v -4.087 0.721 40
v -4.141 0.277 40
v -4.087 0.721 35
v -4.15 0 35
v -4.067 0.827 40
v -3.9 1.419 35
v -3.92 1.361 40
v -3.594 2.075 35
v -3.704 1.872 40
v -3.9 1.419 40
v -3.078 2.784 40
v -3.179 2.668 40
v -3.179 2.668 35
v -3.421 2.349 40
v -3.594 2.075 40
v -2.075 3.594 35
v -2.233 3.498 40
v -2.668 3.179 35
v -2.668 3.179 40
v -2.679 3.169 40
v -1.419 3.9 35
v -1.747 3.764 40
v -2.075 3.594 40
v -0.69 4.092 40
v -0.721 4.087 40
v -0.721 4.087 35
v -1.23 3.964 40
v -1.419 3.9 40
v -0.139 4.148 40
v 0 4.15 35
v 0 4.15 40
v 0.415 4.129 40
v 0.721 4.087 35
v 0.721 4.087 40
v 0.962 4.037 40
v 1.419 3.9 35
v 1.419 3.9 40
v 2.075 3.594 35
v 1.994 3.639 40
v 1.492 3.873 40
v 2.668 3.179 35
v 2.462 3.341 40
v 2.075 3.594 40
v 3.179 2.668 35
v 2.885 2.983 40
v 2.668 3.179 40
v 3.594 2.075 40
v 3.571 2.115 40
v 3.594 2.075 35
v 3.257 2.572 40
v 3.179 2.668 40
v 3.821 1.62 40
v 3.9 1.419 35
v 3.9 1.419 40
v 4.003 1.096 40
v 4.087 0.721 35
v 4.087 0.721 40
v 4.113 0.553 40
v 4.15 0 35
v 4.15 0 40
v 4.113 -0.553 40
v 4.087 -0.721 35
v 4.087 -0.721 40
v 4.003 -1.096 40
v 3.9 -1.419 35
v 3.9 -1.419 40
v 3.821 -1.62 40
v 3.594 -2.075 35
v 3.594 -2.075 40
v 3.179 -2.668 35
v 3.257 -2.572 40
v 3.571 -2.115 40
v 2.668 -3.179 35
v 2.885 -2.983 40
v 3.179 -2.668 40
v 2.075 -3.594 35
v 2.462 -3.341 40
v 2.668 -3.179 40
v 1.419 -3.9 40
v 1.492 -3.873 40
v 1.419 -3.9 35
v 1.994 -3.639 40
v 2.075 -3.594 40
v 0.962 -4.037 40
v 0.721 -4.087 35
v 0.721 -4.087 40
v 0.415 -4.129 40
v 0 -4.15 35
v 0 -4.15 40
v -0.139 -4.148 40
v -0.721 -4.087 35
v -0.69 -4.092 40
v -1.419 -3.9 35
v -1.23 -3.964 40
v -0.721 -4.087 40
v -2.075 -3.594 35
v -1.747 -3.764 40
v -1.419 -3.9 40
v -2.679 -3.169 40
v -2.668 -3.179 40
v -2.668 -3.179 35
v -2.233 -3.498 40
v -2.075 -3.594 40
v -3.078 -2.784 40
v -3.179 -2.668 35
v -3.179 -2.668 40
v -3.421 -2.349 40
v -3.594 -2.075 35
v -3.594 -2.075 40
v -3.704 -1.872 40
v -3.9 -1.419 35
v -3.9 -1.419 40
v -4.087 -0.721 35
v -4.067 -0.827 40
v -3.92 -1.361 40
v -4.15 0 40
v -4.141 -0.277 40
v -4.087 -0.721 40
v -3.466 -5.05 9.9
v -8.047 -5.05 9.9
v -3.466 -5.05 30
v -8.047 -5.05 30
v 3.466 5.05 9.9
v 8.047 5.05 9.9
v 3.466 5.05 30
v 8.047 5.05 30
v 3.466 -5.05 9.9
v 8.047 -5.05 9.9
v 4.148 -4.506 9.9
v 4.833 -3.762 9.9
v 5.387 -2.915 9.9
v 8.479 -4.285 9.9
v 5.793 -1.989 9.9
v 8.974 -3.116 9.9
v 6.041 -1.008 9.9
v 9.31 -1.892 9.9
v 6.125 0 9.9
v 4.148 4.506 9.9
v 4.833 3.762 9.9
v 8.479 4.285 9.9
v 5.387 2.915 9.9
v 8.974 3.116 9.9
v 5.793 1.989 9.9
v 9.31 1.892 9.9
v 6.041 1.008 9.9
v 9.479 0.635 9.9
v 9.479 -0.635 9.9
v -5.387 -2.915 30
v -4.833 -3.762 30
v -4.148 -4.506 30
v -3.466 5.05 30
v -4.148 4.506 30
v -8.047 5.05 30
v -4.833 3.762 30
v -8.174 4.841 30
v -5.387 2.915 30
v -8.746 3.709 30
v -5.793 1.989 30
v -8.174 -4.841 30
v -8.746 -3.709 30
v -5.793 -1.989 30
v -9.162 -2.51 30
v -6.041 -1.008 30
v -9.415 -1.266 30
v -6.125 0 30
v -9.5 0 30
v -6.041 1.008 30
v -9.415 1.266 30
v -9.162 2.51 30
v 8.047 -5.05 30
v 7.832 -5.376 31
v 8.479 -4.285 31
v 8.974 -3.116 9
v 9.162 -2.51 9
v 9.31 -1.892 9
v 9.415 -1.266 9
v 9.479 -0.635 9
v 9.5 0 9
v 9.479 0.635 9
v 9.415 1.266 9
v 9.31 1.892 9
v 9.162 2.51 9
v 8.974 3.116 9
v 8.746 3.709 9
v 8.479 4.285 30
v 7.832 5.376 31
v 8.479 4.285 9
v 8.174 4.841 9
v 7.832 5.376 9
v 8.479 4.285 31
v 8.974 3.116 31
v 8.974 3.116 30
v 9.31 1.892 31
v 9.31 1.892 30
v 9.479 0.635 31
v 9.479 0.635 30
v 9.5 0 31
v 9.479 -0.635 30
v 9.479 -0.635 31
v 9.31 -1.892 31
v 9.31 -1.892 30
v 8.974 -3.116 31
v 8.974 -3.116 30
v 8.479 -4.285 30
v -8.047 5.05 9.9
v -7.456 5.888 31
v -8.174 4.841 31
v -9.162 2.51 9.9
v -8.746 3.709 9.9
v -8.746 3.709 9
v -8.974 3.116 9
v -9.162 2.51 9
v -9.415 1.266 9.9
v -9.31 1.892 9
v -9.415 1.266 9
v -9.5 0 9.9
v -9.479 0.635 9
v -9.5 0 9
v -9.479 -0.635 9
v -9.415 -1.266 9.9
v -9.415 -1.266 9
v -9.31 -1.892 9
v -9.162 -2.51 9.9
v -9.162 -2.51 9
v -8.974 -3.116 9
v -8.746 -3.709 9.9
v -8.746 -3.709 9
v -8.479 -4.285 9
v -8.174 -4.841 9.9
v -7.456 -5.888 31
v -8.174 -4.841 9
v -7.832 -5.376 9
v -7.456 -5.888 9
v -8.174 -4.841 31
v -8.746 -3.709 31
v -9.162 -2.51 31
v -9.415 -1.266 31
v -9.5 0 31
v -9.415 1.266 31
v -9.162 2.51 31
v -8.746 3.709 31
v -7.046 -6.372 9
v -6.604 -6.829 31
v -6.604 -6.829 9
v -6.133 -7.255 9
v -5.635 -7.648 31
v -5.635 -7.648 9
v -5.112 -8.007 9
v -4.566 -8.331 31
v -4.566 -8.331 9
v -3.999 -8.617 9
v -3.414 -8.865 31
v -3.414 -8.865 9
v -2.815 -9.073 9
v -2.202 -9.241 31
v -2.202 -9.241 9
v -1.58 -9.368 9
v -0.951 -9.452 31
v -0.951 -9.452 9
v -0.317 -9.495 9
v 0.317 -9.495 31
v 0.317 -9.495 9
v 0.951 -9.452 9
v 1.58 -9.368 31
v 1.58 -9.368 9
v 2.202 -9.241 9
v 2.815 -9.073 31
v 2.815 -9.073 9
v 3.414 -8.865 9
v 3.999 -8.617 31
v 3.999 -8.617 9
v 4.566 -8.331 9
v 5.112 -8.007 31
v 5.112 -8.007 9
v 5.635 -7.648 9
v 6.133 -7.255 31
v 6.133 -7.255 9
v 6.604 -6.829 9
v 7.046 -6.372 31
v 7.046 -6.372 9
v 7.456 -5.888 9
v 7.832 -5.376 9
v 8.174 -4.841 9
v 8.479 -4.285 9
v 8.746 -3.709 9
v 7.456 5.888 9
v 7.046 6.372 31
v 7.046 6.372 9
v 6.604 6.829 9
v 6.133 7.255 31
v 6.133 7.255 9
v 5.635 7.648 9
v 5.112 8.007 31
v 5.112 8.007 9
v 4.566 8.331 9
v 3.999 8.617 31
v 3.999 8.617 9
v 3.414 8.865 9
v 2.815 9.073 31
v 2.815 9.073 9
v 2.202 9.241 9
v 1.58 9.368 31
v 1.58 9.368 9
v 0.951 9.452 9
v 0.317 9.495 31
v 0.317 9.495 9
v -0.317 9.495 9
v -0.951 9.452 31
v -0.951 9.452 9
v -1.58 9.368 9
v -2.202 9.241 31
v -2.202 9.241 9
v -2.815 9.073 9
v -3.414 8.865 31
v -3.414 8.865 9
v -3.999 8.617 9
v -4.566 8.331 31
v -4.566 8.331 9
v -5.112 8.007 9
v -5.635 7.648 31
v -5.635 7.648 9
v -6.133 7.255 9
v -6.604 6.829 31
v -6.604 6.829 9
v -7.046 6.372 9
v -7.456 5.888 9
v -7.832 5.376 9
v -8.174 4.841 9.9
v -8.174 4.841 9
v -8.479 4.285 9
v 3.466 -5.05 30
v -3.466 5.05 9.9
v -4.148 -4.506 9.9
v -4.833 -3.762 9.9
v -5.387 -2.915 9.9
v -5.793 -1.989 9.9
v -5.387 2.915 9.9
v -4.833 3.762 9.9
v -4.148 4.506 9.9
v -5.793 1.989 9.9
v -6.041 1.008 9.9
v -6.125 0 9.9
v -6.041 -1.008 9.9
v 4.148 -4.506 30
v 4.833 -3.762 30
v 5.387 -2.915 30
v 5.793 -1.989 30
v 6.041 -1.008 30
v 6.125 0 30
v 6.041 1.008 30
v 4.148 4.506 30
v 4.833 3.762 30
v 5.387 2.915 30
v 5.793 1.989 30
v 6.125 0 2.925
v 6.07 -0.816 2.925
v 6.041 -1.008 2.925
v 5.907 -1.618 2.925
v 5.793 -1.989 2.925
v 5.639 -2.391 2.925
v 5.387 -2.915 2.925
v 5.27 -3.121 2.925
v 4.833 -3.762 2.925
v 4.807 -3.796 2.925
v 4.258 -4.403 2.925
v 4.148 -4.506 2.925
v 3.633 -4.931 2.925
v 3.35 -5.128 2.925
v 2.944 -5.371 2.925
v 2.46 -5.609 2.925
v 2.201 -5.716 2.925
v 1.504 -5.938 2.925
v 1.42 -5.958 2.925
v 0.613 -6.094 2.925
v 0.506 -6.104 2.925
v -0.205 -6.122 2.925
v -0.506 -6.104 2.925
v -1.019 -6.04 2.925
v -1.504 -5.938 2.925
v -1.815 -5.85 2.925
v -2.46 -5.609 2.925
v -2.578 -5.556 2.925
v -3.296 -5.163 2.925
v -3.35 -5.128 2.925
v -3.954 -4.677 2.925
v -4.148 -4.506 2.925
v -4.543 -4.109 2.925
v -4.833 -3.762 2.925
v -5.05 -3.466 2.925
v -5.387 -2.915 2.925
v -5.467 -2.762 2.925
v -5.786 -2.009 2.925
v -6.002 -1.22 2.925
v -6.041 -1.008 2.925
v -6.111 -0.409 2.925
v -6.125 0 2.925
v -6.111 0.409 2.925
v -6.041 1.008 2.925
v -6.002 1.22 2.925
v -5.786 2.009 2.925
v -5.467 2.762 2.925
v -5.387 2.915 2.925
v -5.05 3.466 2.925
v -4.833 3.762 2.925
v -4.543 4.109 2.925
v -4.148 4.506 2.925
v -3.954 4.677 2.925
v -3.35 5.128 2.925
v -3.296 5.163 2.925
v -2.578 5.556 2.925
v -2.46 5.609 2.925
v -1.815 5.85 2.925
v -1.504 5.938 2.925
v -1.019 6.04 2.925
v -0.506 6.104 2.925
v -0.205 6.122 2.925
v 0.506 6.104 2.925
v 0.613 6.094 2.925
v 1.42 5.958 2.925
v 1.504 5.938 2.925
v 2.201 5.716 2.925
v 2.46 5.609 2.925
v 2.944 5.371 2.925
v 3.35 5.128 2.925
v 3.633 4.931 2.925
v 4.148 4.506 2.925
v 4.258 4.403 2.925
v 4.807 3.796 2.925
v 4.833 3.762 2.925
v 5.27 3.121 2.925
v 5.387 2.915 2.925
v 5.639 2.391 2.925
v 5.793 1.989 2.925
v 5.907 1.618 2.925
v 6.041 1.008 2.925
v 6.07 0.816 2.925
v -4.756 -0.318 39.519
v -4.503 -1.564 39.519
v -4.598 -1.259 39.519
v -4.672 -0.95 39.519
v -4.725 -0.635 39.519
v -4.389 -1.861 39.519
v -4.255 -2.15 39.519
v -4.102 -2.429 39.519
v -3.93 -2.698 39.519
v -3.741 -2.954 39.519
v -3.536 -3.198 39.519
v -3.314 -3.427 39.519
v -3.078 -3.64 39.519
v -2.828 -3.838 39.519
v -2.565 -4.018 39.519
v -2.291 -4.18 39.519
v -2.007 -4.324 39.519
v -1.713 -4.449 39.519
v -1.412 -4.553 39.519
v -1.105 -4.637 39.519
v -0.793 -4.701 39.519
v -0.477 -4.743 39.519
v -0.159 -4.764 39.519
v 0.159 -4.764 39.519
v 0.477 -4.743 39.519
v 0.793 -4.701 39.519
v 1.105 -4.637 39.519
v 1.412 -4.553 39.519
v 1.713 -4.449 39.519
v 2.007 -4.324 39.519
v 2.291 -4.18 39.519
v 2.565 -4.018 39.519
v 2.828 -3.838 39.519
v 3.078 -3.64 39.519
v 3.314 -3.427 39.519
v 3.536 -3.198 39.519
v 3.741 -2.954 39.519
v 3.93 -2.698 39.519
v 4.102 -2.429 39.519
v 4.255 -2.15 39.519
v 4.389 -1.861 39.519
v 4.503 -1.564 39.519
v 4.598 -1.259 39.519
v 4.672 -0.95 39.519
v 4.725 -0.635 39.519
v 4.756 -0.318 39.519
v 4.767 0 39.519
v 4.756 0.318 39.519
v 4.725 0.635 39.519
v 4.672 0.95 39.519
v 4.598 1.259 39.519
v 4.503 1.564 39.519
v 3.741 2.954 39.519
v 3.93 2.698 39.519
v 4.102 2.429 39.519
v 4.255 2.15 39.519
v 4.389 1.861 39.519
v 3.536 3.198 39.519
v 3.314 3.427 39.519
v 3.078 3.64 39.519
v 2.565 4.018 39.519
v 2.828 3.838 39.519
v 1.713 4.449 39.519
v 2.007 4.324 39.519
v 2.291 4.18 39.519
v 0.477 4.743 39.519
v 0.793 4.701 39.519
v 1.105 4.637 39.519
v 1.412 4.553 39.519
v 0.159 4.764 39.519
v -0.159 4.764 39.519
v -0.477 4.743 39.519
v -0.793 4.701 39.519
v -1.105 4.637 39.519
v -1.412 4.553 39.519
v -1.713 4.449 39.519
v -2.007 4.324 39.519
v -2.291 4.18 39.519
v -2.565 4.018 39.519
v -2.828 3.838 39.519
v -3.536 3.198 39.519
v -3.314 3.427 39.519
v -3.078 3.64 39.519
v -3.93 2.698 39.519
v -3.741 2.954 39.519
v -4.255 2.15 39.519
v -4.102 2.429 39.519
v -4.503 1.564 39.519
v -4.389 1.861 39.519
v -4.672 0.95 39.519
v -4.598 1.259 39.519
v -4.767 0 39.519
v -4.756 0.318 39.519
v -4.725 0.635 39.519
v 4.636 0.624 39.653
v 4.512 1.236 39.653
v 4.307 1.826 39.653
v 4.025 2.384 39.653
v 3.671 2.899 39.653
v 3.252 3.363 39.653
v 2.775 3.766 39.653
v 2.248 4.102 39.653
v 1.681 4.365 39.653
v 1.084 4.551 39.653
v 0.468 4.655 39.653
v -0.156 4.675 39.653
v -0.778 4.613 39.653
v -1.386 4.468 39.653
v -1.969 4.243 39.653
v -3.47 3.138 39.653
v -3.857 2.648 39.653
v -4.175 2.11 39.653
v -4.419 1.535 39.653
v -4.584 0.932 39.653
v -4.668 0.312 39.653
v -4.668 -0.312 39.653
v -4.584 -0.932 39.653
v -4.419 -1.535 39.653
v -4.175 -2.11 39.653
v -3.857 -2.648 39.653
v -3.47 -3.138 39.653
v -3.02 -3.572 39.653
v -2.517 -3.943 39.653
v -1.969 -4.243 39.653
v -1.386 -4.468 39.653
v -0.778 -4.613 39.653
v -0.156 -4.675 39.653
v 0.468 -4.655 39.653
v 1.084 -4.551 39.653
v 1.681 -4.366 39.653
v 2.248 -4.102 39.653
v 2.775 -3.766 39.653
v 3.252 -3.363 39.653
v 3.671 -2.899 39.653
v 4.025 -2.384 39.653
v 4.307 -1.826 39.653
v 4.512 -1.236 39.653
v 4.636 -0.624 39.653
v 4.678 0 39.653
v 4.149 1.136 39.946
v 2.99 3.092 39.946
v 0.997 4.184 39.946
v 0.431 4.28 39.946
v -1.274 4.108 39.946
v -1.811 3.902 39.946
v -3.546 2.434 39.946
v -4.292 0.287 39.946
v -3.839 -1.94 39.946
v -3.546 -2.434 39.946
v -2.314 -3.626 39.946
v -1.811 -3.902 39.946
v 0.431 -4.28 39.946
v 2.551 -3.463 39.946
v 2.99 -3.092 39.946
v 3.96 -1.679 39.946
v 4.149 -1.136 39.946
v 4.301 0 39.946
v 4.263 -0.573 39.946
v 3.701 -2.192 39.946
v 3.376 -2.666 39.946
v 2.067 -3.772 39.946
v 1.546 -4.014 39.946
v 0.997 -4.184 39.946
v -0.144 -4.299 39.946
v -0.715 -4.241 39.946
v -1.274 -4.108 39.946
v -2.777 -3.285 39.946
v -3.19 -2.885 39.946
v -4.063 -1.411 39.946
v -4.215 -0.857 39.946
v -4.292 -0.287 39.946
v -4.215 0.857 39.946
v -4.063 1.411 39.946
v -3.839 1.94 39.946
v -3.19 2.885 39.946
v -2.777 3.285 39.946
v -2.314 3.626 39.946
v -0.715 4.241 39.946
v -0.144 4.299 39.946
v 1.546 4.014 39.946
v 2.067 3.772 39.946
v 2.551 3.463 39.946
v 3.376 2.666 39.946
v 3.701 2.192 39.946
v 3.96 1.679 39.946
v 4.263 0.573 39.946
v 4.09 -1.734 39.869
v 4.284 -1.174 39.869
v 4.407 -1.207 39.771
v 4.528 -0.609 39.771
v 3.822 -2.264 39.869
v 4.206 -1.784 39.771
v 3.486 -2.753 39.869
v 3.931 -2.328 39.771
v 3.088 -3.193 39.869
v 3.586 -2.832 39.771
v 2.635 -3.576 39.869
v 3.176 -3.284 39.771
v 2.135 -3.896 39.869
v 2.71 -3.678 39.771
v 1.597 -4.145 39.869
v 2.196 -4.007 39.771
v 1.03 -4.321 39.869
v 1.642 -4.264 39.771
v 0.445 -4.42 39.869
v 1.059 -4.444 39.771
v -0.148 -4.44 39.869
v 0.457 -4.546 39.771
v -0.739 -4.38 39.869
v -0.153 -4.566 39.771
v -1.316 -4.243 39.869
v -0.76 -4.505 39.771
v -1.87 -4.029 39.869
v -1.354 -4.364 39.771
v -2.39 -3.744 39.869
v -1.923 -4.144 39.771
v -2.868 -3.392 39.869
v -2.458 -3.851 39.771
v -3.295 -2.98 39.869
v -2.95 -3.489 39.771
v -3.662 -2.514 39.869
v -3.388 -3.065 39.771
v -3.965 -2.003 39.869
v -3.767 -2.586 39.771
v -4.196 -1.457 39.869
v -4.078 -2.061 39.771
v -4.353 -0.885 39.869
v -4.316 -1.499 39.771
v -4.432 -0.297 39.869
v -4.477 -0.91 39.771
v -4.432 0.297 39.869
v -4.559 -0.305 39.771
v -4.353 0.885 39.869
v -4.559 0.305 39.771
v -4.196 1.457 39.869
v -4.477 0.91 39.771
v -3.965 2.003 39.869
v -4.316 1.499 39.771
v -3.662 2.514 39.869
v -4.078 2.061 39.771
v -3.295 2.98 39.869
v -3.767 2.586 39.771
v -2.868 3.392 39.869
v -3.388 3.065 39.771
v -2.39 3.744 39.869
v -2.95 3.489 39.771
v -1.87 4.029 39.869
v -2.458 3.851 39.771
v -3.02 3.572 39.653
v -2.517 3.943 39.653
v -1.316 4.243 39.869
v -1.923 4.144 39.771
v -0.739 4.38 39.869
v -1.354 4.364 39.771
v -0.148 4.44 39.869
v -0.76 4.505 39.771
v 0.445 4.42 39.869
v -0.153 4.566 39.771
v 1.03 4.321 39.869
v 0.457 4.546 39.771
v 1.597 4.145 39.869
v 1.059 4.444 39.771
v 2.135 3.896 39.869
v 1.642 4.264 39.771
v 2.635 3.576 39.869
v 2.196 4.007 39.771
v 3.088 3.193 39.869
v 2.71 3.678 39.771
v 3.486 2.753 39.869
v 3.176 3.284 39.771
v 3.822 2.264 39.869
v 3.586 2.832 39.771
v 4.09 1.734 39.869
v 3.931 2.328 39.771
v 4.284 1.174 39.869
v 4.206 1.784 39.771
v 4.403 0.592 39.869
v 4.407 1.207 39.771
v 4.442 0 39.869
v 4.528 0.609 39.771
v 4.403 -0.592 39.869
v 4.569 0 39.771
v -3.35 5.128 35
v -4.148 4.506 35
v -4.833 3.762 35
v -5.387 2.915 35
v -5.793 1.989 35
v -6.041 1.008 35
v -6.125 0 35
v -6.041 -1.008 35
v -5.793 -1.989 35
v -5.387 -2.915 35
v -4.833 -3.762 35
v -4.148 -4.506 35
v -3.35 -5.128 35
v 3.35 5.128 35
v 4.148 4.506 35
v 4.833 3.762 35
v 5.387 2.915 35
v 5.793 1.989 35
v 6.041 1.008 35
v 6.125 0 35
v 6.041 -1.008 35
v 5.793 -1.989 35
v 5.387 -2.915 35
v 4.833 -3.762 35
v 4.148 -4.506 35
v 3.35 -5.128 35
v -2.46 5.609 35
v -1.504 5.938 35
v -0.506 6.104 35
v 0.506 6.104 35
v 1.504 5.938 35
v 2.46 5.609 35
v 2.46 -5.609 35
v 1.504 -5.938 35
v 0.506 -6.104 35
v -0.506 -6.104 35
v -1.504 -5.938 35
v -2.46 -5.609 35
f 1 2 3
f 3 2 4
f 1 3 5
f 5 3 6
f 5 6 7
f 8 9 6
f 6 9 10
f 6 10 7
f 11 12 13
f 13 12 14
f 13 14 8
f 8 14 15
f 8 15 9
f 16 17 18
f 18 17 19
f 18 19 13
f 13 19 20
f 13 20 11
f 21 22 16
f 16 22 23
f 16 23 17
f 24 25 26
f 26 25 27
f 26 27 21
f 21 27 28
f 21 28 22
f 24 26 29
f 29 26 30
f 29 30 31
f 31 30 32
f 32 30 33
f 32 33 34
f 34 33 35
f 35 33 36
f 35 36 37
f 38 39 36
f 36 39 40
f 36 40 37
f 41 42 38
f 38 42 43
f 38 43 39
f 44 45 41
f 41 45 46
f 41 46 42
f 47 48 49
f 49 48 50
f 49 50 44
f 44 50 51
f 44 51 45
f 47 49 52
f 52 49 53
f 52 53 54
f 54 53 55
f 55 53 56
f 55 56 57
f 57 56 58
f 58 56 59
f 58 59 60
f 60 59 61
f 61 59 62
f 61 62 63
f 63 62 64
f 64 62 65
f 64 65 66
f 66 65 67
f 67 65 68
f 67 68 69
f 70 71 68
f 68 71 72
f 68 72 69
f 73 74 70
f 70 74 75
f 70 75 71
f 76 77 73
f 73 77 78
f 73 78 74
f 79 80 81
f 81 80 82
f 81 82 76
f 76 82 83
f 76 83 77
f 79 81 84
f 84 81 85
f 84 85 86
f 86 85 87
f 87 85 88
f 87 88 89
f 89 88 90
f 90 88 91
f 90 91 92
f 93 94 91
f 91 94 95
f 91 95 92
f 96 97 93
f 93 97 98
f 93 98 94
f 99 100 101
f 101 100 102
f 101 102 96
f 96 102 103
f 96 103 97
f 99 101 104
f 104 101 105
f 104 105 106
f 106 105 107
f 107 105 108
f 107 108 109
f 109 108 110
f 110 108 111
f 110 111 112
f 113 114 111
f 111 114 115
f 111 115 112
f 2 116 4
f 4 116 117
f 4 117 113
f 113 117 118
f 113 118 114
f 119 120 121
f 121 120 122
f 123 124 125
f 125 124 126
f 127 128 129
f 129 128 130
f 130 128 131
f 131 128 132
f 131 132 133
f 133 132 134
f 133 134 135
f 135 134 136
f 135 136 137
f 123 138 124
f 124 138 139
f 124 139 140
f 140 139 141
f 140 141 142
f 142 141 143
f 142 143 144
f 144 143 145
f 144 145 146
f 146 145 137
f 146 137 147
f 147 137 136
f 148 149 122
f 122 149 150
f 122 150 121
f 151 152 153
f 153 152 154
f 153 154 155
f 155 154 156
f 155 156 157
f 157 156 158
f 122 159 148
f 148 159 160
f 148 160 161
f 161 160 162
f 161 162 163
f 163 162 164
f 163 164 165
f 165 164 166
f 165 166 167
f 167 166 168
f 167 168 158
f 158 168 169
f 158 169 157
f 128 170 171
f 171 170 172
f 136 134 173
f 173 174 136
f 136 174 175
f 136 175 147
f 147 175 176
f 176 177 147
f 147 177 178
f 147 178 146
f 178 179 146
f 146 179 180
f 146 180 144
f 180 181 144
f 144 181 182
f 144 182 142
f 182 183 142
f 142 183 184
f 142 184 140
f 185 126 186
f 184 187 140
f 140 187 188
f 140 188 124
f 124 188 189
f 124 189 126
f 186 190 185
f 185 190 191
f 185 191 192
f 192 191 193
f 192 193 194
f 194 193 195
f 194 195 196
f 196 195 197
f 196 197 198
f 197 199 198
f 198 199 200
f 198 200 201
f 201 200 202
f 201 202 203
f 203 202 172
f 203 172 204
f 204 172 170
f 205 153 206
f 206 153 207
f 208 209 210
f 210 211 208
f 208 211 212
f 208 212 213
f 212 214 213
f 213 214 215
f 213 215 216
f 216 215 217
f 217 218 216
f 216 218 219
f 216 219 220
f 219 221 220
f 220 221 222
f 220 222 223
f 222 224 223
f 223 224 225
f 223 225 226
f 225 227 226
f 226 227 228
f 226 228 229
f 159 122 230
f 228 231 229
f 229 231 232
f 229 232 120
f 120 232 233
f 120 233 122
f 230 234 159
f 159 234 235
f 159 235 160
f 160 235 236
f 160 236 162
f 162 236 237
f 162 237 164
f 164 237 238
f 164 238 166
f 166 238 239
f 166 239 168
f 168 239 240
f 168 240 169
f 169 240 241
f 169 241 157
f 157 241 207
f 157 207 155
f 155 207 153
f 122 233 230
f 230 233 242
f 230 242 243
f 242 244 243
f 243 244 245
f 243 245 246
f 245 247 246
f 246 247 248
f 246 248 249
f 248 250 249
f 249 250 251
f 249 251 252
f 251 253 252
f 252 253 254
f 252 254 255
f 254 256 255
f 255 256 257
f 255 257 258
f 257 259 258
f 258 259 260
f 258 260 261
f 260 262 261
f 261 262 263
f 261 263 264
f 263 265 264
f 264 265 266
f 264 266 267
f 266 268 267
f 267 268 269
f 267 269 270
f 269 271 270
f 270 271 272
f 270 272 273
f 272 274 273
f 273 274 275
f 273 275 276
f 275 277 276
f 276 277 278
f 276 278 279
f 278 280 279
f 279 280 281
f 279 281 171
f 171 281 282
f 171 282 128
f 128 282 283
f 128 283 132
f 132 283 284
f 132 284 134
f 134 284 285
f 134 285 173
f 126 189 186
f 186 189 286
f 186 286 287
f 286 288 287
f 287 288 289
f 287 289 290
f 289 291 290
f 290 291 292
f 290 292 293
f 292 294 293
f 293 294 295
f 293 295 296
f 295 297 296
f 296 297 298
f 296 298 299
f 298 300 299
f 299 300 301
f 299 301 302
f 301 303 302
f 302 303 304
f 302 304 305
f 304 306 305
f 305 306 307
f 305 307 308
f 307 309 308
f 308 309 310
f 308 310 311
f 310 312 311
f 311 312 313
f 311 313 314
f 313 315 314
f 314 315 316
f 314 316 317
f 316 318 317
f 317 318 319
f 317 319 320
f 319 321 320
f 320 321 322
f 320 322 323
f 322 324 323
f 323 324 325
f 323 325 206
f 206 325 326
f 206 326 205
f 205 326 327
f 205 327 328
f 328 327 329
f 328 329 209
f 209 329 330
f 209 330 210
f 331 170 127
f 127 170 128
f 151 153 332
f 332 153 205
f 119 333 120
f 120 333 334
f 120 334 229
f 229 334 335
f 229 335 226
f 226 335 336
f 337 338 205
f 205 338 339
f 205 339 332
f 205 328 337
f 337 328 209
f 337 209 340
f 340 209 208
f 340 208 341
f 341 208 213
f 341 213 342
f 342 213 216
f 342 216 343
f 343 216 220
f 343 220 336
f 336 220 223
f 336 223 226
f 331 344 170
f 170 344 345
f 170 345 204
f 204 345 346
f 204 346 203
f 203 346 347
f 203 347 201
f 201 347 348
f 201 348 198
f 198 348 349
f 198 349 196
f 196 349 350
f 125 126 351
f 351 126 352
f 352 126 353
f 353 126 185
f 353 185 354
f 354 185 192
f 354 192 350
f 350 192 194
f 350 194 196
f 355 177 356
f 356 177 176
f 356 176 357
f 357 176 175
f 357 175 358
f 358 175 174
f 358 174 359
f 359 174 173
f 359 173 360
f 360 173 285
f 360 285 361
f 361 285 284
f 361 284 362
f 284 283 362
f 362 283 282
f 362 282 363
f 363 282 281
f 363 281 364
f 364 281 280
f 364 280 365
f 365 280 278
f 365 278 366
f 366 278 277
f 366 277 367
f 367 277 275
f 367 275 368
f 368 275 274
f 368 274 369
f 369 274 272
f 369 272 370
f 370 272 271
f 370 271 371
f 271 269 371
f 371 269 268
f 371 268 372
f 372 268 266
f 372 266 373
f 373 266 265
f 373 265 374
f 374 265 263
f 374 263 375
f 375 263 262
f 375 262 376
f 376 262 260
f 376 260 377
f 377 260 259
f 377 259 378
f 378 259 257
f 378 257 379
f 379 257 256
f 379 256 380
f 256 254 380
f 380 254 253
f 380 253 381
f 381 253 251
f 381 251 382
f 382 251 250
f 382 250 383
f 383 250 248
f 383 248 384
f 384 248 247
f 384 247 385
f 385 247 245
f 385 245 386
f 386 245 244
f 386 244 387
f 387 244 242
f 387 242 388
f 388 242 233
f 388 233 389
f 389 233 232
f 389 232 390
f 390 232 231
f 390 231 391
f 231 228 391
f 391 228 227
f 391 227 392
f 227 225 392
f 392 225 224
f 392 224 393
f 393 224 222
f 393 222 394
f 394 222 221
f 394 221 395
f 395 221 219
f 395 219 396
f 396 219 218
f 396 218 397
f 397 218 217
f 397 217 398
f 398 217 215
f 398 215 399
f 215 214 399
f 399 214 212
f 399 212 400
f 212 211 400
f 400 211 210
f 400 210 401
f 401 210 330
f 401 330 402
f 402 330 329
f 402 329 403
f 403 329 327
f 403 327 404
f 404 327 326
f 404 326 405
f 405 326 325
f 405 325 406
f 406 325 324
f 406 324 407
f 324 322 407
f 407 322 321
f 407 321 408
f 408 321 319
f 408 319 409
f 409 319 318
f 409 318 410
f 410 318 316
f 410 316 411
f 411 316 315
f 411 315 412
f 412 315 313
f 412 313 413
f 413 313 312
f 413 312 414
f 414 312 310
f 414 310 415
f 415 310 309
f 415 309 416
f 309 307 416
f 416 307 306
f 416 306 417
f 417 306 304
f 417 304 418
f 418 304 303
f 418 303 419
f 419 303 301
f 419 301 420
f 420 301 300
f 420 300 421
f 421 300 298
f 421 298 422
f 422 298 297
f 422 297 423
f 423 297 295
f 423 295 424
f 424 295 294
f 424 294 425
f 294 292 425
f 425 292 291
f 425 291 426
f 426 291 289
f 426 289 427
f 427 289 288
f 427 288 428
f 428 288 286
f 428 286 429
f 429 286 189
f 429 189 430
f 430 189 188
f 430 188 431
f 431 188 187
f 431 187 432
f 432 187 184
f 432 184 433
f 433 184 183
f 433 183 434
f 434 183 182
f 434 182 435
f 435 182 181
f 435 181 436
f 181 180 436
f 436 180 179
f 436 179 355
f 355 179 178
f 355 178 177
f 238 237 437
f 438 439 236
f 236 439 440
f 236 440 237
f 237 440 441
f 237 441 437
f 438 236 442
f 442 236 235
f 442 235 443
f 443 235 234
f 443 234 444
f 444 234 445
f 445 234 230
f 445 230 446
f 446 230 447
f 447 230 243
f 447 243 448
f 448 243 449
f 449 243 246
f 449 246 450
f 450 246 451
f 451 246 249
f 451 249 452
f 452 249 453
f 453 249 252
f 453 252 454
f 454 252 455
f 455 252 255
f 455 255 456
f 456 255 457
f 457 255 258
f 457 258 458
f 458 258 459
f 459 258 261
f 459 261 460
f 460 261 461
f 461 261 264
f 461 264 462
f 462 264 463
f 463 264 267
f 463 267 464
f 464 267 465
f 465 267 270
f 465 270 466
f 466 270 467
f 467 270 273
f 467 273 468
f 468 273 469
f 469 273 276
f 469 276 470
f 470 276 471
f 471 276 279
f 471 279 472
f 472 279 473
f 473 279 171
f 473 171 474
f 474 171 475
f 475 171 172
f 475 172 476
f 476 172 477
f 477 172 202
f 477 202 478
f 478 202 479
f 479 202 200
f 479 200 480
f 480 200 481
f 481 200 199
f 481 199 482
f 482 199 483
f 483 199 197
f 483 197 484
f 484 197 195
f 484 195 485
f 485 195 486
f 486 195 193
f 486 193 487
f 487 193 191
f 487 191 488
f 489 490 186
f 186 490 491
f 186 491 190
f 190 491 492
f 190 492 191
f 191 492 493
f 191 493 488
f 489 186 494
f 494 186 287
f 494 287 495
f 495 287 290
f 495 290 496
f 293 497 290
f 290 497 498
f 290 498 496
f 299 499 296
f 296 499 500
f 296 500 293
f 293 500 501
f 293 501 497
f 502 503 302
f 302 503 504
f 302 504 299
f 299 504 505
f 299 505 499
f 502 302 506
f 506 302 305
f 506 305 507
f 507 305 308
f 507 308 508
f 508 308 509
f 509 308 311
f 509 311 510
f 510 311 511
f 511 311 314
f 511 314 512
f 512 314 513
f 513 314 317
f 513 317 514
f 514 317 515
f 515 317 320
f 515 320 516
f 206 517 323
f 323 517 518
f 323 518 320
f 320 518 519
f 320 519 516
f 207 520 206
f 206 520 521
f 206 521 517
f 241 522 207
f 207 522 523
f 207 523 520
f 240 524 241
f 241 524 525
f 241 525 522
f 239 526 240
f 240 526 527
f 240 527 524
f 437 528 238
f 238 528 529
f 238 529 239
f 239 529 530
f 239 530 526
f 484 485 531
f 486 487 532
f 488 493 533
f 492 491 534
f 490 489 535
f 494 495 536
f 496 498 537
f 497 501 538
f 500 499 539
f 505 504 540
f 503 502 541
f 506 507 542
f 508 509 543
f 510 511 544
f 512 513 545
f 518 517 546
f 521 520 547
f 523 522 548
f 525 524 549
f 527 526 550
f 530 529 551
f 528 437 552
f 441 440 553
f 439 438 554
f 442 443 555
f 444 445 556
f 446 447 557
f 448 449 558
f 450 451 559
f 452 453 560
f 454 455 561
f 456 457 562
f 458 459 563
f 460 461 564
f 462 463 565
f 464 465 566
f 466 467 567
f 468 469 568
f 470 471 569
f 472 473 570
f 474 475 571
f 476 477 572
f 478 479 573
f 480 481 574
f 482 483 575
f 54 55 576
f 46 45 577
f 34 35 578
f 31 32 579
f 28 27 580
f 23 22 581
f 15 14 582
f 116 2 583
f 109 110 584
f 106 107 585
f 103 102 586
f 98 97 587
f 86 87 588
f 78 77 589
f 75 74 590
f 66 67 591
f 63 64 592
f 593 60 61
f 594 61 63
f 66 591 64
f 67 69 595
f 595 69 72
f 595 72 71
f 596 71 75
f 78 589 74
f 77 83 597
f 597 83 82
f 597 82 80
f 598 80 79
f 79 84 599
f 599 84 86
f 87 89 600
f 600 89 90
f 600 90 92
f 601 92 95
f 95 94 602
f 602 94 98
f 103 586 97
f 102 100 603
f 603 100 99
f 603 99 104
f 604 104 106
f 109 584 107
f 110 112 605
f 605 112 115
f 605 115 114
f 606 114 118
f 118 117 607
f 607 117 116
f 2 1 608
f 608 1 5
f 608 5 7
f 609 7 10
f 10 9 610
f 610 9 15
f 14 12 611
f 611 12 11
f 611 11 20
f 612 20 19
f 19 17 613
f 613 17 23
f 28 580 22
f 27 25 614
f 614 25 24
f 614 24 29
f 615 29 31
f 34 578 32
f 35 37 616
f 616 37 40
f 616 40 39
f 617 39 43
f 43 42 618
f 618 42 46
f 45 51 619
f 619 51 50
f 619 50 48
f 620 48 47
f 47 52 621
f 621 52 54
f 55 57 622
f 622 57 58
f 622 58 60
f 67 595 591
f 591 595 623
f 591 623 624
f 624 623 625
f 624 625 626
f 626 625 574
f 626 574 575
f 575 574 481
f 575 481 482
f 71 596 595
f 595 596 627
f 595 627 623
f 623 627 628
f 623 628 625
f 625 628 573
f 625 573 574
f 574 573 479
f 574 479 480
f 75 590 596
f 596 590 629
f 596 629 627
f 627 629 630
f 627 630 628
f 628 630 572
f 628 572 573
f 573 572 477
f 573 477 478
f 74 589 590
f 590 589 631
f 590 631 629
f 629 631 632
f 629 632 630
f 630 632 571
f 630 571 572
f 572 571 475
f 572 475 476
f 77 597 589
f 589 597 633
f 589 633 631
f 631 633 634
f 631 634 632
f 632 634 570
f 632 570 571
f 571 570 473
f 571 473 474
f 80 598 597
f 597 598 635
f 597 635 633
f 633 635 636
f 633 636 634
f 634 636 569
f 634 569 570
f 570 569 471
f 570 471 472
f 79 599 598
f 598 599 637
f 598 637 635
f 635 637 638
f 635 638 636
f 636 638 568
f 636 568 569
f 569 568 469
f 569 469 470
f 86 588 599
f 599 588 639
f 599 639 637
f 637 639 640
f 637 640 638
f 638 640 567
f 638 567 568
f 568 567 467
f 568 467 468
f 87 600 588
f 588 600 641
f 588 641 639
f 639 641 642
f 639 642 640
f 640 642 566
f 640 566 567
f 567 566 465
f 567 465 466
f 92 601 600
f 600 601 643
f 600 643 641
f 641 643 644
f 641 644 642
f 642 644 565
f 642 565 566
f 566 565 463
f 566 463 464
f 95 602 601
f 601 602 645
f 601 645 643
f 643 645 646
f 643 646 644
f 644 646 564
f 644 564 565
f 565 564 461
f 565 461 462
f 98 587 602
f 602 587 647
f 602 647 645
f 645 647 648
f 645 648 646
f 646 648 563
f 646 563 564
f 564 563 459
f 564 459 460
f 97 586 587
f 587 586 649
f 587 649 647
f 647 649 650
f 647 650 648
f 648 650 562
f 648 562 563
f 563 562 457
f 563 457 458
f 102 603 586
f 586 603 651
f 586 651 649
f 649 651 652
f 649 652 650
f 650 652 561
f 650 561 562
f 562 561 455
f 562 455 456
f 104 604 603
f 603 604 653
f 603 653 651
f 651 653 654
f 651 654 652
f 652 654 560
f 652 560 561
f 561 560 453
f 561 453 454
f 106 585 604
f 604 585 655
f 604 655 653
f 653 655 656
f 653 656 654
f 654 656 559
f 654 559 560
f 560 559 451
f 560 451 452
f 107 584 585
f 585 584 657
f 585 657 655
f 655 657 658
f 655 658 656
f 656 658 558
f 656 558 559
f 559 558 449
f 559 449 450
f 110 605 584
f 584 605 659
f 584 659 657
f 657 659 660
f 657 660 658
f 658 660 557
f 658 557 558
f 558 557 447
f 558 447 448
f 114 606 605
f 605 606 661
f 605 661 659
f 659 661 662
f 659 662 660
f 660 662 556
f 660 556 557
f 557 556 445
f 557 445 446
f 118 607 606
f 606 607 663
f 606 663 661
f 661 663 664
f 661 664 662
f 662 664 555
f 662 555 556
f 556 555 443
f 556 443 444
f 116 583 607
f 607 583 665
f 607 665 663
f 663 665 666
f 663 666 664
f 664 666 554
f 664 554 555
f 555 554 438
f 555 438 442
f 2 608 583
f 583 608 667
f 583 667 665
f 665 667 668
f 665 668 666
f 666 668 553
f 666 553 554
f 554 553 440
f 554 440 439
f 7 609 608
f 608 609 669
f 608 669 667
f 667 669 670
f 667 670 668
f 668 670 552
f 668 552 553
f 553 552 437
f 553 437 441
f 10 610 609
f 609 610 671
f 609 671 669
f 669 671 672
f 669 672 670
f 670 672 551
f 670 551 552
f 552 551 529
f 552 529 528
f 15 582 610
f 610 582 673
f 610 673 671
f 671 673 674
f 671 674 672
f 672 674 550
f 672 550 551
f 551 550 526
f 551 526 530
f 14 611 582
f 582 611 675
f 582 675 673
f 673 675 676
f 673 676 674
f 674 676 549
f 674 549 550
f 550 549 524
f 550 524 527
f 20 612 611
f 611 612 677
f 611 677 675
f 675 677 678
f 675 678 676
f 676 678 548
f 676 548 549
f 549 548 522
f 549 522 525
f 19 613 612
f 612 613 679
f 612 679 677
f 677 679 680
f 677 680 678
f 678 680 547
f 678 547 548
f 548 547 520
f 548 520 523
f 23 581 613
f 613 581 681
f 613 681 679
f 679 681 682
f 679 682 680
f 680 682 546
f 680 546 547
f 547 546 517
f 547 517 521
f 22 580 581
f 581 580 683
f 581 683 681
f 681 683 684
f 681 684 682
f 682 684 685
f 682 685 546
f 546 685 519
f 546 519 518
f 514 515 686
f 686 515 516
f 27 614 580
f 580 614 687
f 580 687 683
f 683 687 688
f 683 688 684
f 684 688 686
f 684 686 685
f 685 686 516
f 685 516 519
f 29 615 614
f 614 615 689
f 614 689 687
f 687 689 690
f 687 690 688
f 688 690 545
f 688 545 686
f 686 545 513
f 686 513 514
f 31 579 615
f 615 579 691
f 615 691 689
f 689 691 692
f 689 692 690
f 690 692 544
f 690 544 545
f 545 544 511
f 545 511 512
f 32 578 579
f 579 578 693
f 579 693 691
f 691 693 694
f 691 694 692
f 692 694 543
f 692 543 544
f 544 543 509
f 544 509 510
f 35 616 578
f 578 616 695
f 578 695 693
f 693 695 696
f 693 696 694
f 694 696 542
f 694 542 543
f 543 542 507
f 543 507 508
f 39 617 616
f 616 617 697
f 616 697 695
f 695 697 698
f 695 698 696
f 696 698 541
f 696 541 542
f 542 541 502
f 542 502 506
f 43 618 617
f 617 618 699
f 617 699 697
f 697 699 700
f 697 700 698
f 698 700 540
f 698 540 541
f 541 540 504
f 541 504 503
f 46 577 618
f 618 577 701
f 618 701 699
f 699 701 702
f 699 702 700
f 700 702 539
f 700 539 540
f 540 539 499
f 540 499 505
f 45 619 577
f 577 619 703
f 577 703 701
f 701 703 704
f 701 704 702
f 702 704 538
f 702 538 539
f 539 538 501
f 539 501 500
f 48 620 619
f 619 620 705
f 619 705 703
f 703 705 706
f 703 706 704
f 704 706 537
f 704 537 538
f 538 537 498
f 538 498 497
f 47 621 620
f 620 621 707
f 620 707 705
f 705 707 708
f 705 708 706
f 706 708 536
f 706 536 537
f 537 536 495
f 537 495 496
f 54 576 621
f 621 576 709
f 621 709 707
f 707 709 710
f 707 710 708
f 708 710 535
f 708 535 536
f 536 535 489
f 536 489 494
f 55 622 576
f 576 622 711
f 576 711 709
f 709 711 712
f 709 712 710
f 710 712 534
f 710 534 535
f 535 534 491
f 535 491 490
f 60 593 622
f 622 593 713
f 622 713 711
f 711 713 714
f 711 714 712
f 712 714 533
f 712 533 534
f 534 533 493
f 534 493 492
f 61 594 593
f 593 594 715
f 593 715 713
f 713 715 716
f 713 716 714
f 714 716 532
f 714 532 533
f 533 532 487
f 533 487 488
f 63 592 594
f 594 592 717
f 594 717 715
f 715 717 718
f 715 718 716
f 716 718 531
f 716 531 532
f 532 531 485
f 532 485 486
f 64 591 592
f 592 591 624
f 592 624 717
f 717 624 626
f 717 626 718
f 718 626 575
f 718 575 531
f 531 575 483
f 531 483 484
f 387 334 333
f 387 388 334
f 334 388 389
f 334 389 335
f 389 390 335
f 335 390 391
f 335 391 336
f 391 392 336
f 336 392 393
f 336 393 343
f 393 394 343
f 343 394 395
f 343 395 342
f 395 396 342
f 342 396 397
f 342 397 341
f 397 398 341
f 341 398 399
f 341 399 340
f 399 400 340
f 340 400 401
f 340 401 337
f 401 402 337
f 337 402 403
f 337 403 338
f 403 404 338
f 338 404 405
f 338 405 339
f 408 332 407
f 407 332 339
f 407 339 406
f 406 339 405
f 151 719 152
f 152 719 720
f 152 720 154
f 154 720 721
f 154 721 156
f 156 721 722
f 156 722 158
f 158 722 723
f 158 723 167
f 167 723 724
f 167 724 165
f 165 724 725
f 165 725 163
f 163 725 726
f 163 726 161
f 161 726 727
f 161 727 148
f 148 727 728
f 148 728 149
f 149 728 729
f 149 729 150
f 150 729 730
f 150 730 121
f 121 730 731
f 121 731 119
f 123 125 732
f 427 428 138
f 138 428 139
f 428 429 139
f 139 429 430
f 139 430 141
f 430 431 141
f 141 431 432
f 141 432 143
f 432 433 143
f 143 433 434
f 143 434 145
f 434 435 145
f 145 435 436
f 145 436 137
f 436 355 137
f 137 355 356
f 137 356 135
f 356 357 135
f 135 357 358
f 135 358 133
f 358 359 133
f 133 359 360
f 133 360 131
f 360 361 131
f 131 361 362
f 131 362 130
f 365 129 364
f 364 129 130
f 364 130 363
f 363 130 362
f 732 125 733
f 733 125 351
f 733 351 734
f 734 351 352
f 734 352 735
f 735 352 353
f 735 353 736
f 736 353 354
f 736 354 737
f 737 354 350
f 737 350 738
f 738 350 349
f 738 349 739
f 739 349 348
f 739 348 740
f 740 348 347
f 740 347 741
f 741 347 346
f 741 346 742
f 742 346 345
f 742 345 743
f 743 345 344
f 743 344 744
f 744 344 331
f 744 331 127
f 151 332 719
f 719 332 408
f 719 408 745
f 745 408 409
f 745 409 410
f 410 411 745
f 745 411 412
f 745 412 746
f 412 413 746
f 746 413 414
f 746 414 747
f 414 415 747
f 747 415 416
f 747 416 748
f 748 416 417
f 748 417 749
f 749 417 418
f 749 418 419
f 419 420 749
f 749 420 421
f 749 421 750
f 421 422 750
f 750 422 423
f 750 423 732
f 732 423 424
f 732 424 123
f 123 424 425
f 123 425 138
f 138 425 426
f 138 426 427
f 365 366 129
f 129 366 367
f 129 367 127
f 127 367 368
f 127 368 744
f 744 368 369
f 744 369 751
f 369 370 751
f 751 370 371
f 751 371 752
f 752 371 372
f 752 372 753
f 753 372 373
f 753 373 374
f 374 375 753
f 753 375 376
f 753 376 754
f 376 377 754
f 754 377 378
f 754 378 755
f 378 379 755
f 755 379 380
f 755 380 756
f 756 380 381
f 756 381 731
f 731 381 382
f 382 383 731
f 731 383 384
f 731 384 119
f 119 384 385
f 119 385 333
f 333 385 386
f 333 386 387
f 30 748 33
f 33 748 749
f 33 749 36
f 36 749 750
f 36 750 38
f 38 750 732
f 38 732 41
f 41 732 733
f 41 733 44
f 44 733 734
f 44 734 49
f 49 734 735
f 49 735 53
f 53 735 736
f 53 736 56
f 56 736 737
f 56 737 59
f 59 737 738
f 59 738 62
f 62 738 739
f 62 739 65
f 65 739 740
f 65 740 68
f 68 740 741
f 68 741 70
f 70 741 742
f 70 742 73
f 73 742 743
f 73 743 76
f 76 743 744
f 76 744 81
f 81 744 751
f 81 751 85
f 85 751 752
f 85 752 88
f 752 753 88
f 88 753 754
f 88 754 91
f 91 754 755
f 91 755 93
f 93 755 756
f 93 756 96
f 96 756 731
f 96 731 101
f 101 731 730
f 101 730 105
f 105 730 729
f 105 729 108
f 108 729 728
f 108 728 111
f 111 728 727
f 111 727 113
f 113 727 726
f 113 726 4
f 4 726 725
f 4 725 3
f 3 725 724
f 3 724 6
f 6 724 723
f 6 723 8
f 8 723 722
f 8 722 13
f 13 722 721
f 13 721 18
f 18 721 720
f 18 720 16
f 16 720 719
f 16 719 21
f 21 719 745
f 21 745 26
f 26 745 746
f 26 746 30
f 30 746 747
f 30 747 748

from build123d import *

# Parameters (mm, degrees)
SCHIZZO1_R                   = 9.5
SCHIZZO1_R_2                 = 4.15
ESTRUSIONE_ESTRUSIONE1_DEPTH = 40
SCHIZZO2_W                   = 20.1
SCHIZZO2_H                   = 10.1
TAGLIO_ESTRUSIONE1_DEPTH     = 46.290727528
SMUSSO1_SIZE                 = 9
SMUSSO1_SIZE2                = 5
RACCORDO1_R                  = 1
SCHIZZO3_R                   = 6.125
TAGLIO_ESTRUSIONE2_DEPTH     = 35


with BuildPart() as part:
    # Schizzo1 → Estrusione-Estrusione1 (new body)
    with BuildSketch(Plane.XY):
        Circle(SCHIZZO1_R)
        Circle(SCHIZZO1_R_2, mode=Mode.SUBTRACT)
    extrude(amount=ESTRUSIONE_ESTRUSIONE1_DEPTH)

    # Schizzo2 → Taglio-Estrusione1 (cut, through all)
    with BuildSketch(Plane(origin=(9.5, 0, 0), x_dir=(0, 0, -1), z_dir=(1, 0, 0))):
        with Locations((-19.95, 0)):
            Rectangle(SCHIZZO2_W, SCHIZZO2_H)
    extrude(amount=-TAGLIO_ESTRUSIONE1_DEPTH, mode=Mode.SUBTRACT)

    # Smusso1
    smusso1_edges = [part.edges().sort_by_distance(p)[0] for p in [
        (-9.5, 0, 0),
        (-9.5, 0, 40),
    ]]
    smusso1_side = [part.faces().sort_by_distance(p)[0] for p in [
        (-9.5, 0, 20),
    ]]
    chamfer(smusso1_edges, length=SMUSSO1_SIZE, length2=SMUSSO1_SIZE2, reference=smusso1_side[0])

    # Raccordo1
    # the kernel refuses this fillet: 1 mm, written as the material it takes off along each edge
    with BuildSketch(Plane(origin=(0, 0, 40), x_dir=(1, 0, 0), z_dir=(0, -1, 0))) as raccordo1_piece_1:
        with BuildLine():
            CenterArc((3.892925278, -0.966391529), RACCORDO1_R, 29.054604099, 46.048838888)
            Line((4.15, 0), (4.155141494, 0.019327831))
            ThreePointArc((4.155141494, 0.019327831), (4.325, 0.02), (4.5, 0.02))
            Line((4.5, 0.02), (4.517483146, 0.009712859))
            Line((4.517483146, 0.009712859), (4.7845657, -0.471035739))
            Line((4.7845657, -0.471035739), (4.767082554, -0.480748598))
        make_face()
    revolve(axis=Axis((0, 0, 40), (0, 0, 1)), mode=Mode.SUBTRACT)

    # Schizzo3 → Taglio-Estrusione2 (cut)
    with BuildSketch(Plane(origin=(0, 0, 0), x_dir=(-1, 0, 0), z_dir=(0, 0, -1))):
        Circle(SCHIZZO3_R)
    extrude(amount=-TAGLIO_ESTRUSIONE2_DEPTH, mode=Mode.SUBTRACT)


solid = part.part
